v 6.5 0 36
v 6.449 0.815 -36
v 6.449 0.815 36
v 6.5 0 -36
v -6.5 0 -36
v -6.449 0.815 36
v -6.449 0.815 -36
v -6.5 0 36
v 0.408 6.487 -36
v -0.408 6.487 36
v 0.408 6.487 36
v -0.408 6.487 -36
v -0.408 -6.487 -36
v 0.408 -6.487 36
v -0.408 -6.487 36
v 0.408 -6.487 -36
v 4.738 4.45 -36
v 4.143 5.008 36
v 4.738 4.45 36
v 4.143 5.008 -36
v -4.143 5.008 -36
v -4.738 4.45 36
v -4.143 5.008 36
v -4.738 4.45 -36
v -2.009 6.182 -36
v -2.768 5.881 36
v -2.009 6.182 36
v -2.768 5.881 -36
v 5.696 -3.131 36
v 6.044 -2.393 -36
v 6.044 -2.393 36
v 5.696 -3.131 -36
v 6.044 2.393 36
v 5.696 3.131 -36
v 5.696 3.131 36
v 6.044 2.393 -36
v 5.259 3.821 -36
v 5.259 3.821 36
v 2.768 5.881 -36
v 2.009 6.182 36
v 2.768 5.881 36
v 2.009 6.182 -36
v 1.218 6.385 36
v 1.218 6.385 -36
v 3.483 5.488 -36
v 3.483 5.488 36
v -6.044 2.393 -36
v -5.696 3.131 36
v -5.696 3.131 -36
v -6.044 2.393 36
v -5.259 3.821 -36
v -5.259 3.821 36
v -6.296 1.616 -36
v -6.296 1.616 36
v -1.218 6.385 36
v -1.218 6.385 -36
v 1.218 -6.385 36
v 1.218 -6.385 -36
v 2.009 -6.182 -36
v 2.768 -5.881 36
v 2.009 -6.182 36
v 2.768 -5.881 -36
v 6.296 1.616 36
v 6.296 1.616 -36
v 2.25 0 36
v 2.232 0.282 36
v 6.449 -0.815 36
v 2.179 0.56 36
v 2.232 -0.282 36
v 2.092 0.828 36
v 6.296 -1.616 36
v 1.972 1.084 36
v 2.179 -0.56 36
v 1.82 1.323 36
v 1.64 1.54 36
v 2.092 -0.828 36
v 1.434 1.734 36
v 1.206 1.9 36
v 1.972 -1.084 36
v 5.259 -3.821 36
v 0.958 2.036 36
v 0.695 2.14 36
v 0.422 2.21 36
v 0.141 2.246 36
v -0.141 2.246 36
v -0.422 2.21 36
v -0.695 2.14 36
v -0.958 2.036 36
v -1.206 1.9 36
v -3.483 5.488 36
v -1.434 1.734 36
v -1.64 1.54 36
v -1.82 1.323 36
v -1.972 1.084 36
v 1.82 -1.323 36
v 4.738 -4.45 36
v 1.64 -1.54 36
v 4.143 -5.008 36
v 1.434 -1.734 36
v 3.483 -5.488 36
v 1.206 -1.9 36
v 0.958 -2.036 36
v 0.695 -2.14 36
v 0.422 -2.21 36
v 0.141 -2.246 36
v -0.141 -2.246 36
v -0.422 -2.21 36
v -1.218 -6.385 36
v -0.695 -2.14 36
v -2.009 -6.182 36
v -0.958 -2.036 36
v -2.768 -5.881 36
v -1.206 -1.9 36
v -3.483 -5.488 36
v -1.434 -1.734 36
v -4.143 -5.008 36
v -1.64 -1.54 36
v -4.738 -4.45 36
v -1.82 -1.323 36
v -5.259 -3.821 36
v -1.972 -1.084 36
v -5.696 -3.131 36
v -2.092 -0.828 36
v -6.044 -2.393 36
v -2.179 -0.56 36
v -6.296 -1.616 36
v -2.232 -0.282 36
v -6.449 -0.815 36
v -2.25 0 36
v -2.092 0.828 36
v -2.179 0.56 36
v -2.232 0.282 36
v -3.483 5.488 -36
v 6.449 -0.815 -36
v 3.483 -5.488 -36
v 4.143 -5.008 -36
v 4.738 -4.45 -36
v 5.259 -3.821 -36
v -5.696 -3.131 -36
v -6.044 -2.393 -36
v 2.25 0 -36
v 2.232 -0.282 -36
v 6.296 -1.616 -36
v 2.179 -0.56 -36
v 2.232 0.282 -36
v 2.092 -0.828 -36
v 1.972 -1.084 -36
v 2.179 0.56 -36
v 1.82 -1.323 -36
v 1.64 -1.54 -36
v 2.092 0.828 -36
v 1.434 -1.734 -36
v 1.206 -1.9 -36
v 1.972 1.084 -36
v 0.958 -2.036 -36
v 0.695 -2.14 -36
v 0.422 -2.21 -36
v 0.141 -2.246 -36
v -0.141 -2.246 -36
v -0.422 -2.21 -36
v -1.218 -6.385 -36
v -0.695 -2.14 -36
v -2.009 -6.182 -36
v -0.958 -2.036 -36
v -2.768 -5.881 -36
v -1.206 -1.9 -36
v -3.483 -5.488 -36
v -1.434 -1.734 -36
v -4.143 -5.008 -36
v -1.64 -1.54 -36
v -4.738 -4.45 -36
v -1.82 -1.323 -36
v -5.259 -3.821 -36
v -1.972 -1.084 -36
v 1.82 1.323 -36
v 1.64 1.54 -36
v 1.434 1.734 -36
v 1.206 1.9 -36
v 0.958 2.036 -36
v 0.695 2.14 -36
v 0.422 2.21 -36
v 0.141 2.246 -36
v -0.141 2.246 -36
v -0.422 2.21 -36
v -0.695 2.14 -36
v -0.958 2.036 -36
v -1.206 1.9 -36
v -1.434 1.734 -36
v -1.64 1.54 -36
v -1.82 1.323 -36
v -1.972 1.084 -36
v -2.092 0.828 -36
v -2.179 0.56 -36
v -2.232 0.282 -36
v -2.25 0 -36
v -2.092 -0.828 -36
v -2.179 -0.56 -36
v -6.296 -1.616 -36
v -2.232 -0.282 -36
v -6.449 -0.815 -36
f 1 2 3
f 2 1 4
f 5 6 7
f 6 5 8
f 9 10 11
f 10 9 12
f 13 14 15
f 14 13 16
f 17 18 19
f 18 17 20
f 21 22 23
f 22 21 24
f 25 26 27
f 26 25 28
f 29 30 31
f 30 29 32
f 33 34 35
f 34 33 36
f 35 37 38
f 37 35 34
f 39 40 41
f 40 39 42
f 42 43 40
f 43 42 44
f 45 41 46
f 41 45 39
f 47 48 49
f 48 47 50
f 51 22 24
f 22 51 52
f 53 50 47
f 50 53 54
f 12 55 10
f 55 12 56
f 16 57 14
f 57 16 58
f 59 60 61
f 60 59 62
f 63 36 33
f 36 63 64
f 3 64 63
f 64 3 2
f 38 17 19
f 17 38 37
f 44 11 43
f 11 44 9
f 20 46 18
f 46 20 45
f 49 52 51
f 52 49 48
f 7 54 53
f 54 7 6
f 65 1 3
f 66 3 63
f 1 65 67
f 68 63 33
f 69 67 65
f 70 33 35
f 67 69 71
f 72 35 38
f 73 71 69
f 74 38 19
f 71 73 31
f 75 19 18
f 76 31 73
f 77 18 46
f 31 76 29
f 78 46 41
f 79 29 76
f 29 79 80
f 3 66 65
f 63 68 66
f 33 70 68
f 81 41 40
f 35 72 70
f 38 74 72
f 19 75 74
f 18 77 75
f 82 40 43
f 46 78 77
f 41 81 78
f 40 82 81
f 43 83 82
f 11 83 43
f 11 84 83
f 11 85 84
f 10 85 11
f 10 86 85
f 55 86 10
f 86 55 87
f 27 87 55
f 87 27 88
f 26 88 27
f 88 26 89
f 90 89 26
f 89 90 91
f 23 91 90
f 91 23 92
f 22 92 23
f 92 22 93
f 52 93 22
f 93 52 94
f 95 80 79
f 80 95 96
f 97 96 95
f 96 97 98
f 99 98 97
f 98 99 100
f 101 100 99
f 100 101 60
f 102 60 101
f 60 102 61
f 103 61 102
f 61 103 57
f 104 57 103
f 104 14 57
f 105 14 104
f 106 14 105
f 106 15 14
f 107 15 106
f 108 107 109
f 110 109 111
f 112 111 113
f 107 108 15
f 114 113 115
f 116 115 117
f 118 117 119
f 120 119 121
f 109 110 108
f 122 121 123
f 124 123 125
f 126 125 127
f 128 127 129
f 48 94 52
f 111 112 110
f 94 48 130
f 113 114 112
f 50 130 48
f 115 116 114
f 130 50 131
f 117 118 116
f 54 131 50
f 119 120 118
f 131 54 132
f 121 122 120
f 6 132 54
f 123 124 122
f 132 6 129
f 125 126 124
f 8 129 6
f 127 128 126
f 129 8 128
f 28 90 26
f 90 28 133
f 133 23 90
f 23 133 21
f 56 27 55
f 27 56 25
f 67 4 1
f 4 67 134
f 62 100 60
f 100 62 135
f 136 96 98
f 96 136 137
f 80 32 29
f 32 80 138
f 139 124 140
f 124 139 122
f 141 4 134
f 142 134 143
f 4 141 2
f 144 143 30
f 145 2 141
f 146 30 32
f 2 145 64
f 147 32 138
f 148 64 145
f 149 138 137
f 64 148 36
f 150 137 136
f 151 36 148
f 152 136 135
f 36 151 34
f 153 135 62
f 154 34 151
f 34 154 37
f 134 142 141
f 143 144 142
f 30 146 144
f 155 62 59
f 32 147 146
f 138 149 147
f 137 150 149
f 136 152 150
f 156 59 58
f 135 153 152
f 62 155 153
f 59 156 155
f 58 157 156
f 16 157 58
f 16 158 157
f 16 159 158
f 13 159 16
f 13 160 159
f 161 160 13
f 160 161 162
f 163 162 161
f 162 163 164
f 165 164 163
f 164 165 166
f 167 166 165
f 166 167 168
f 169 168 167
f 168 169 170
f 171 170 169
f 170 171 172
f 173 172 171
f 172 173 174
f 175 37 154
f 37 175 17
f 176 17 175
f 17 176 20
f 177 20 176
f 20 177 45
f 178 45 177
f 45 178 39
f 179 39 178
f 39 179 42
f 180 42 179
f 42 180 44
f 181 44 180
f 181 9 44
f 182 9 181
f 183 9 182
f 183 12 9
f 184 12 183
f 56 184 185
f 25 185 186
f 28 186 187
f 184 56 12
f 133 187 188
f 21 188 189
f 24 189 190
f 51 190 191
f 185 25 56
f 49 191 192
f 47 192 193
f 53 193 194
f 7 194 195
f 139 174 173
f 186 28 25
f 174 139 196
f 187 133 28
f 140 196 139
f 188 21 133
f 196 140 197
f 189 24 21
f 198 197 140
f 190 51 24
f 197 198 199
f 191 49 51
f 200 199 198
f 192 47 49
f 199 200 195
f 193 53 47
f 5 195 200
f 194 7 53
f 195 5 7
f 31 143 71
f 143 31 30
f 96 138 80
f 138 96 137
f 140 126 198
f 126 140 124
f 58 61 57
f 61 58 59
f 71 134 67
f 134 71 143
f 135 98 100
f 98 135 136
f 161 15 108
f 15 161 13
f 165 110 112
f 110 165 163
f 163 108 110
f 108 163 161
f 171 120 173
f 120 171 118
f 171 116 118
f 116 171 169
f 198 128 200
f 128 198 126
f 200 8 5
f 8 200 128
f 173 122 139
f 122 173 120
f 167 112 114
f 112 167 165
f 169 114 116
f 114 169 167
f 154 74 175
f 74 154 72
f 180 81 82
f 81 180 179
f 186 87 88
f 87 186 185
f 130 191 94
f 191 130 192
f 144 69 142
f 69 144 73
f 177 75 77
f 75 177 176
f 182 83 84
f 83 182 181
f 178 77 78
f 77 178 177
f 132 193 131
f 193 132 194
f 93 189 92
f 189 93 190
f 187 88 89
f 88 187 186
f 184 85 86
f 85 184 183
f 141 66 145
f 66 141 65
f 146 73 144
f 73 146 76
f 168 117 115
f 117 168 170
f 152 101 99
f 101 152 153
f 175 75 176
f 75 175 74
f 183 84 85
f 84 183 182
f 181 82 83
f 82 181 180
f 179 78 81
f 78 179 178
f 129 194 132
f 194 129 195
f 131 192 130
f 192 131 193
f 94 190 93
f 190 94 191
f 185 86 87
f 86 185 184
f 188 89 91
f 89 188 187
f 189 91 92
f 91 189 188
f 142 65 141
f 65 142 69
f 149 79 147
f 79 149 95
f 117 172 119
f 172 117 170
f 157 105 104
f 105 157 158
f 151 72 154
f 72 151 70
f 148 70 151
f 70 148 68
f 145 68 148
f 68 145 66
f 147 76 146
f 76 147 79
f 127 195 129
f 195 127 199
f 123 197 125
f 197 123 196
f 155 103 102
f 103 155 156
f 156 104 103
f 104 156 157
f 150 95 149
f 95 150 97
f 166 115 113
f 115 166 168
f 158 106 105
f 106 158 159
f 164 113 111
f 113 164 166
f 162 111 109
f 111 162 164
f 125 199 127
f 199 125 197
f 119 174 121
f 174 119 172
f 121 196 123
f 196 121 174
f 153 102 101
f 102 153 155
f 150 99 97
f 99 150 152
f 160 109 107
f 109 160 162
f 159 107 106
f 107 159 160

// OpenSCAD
$fn = 50;


difference() {
	union() {
		translate(v = [0, 0, -36.0000000000]) {
			cylinder(h = 72, r = 6.5000000000);
		}
	}
	union() {
		translate(v = [0, 0, -100.0000000000]) {
			cylinder(h = 200, r = 2.2500000000);
		}
	}
}
